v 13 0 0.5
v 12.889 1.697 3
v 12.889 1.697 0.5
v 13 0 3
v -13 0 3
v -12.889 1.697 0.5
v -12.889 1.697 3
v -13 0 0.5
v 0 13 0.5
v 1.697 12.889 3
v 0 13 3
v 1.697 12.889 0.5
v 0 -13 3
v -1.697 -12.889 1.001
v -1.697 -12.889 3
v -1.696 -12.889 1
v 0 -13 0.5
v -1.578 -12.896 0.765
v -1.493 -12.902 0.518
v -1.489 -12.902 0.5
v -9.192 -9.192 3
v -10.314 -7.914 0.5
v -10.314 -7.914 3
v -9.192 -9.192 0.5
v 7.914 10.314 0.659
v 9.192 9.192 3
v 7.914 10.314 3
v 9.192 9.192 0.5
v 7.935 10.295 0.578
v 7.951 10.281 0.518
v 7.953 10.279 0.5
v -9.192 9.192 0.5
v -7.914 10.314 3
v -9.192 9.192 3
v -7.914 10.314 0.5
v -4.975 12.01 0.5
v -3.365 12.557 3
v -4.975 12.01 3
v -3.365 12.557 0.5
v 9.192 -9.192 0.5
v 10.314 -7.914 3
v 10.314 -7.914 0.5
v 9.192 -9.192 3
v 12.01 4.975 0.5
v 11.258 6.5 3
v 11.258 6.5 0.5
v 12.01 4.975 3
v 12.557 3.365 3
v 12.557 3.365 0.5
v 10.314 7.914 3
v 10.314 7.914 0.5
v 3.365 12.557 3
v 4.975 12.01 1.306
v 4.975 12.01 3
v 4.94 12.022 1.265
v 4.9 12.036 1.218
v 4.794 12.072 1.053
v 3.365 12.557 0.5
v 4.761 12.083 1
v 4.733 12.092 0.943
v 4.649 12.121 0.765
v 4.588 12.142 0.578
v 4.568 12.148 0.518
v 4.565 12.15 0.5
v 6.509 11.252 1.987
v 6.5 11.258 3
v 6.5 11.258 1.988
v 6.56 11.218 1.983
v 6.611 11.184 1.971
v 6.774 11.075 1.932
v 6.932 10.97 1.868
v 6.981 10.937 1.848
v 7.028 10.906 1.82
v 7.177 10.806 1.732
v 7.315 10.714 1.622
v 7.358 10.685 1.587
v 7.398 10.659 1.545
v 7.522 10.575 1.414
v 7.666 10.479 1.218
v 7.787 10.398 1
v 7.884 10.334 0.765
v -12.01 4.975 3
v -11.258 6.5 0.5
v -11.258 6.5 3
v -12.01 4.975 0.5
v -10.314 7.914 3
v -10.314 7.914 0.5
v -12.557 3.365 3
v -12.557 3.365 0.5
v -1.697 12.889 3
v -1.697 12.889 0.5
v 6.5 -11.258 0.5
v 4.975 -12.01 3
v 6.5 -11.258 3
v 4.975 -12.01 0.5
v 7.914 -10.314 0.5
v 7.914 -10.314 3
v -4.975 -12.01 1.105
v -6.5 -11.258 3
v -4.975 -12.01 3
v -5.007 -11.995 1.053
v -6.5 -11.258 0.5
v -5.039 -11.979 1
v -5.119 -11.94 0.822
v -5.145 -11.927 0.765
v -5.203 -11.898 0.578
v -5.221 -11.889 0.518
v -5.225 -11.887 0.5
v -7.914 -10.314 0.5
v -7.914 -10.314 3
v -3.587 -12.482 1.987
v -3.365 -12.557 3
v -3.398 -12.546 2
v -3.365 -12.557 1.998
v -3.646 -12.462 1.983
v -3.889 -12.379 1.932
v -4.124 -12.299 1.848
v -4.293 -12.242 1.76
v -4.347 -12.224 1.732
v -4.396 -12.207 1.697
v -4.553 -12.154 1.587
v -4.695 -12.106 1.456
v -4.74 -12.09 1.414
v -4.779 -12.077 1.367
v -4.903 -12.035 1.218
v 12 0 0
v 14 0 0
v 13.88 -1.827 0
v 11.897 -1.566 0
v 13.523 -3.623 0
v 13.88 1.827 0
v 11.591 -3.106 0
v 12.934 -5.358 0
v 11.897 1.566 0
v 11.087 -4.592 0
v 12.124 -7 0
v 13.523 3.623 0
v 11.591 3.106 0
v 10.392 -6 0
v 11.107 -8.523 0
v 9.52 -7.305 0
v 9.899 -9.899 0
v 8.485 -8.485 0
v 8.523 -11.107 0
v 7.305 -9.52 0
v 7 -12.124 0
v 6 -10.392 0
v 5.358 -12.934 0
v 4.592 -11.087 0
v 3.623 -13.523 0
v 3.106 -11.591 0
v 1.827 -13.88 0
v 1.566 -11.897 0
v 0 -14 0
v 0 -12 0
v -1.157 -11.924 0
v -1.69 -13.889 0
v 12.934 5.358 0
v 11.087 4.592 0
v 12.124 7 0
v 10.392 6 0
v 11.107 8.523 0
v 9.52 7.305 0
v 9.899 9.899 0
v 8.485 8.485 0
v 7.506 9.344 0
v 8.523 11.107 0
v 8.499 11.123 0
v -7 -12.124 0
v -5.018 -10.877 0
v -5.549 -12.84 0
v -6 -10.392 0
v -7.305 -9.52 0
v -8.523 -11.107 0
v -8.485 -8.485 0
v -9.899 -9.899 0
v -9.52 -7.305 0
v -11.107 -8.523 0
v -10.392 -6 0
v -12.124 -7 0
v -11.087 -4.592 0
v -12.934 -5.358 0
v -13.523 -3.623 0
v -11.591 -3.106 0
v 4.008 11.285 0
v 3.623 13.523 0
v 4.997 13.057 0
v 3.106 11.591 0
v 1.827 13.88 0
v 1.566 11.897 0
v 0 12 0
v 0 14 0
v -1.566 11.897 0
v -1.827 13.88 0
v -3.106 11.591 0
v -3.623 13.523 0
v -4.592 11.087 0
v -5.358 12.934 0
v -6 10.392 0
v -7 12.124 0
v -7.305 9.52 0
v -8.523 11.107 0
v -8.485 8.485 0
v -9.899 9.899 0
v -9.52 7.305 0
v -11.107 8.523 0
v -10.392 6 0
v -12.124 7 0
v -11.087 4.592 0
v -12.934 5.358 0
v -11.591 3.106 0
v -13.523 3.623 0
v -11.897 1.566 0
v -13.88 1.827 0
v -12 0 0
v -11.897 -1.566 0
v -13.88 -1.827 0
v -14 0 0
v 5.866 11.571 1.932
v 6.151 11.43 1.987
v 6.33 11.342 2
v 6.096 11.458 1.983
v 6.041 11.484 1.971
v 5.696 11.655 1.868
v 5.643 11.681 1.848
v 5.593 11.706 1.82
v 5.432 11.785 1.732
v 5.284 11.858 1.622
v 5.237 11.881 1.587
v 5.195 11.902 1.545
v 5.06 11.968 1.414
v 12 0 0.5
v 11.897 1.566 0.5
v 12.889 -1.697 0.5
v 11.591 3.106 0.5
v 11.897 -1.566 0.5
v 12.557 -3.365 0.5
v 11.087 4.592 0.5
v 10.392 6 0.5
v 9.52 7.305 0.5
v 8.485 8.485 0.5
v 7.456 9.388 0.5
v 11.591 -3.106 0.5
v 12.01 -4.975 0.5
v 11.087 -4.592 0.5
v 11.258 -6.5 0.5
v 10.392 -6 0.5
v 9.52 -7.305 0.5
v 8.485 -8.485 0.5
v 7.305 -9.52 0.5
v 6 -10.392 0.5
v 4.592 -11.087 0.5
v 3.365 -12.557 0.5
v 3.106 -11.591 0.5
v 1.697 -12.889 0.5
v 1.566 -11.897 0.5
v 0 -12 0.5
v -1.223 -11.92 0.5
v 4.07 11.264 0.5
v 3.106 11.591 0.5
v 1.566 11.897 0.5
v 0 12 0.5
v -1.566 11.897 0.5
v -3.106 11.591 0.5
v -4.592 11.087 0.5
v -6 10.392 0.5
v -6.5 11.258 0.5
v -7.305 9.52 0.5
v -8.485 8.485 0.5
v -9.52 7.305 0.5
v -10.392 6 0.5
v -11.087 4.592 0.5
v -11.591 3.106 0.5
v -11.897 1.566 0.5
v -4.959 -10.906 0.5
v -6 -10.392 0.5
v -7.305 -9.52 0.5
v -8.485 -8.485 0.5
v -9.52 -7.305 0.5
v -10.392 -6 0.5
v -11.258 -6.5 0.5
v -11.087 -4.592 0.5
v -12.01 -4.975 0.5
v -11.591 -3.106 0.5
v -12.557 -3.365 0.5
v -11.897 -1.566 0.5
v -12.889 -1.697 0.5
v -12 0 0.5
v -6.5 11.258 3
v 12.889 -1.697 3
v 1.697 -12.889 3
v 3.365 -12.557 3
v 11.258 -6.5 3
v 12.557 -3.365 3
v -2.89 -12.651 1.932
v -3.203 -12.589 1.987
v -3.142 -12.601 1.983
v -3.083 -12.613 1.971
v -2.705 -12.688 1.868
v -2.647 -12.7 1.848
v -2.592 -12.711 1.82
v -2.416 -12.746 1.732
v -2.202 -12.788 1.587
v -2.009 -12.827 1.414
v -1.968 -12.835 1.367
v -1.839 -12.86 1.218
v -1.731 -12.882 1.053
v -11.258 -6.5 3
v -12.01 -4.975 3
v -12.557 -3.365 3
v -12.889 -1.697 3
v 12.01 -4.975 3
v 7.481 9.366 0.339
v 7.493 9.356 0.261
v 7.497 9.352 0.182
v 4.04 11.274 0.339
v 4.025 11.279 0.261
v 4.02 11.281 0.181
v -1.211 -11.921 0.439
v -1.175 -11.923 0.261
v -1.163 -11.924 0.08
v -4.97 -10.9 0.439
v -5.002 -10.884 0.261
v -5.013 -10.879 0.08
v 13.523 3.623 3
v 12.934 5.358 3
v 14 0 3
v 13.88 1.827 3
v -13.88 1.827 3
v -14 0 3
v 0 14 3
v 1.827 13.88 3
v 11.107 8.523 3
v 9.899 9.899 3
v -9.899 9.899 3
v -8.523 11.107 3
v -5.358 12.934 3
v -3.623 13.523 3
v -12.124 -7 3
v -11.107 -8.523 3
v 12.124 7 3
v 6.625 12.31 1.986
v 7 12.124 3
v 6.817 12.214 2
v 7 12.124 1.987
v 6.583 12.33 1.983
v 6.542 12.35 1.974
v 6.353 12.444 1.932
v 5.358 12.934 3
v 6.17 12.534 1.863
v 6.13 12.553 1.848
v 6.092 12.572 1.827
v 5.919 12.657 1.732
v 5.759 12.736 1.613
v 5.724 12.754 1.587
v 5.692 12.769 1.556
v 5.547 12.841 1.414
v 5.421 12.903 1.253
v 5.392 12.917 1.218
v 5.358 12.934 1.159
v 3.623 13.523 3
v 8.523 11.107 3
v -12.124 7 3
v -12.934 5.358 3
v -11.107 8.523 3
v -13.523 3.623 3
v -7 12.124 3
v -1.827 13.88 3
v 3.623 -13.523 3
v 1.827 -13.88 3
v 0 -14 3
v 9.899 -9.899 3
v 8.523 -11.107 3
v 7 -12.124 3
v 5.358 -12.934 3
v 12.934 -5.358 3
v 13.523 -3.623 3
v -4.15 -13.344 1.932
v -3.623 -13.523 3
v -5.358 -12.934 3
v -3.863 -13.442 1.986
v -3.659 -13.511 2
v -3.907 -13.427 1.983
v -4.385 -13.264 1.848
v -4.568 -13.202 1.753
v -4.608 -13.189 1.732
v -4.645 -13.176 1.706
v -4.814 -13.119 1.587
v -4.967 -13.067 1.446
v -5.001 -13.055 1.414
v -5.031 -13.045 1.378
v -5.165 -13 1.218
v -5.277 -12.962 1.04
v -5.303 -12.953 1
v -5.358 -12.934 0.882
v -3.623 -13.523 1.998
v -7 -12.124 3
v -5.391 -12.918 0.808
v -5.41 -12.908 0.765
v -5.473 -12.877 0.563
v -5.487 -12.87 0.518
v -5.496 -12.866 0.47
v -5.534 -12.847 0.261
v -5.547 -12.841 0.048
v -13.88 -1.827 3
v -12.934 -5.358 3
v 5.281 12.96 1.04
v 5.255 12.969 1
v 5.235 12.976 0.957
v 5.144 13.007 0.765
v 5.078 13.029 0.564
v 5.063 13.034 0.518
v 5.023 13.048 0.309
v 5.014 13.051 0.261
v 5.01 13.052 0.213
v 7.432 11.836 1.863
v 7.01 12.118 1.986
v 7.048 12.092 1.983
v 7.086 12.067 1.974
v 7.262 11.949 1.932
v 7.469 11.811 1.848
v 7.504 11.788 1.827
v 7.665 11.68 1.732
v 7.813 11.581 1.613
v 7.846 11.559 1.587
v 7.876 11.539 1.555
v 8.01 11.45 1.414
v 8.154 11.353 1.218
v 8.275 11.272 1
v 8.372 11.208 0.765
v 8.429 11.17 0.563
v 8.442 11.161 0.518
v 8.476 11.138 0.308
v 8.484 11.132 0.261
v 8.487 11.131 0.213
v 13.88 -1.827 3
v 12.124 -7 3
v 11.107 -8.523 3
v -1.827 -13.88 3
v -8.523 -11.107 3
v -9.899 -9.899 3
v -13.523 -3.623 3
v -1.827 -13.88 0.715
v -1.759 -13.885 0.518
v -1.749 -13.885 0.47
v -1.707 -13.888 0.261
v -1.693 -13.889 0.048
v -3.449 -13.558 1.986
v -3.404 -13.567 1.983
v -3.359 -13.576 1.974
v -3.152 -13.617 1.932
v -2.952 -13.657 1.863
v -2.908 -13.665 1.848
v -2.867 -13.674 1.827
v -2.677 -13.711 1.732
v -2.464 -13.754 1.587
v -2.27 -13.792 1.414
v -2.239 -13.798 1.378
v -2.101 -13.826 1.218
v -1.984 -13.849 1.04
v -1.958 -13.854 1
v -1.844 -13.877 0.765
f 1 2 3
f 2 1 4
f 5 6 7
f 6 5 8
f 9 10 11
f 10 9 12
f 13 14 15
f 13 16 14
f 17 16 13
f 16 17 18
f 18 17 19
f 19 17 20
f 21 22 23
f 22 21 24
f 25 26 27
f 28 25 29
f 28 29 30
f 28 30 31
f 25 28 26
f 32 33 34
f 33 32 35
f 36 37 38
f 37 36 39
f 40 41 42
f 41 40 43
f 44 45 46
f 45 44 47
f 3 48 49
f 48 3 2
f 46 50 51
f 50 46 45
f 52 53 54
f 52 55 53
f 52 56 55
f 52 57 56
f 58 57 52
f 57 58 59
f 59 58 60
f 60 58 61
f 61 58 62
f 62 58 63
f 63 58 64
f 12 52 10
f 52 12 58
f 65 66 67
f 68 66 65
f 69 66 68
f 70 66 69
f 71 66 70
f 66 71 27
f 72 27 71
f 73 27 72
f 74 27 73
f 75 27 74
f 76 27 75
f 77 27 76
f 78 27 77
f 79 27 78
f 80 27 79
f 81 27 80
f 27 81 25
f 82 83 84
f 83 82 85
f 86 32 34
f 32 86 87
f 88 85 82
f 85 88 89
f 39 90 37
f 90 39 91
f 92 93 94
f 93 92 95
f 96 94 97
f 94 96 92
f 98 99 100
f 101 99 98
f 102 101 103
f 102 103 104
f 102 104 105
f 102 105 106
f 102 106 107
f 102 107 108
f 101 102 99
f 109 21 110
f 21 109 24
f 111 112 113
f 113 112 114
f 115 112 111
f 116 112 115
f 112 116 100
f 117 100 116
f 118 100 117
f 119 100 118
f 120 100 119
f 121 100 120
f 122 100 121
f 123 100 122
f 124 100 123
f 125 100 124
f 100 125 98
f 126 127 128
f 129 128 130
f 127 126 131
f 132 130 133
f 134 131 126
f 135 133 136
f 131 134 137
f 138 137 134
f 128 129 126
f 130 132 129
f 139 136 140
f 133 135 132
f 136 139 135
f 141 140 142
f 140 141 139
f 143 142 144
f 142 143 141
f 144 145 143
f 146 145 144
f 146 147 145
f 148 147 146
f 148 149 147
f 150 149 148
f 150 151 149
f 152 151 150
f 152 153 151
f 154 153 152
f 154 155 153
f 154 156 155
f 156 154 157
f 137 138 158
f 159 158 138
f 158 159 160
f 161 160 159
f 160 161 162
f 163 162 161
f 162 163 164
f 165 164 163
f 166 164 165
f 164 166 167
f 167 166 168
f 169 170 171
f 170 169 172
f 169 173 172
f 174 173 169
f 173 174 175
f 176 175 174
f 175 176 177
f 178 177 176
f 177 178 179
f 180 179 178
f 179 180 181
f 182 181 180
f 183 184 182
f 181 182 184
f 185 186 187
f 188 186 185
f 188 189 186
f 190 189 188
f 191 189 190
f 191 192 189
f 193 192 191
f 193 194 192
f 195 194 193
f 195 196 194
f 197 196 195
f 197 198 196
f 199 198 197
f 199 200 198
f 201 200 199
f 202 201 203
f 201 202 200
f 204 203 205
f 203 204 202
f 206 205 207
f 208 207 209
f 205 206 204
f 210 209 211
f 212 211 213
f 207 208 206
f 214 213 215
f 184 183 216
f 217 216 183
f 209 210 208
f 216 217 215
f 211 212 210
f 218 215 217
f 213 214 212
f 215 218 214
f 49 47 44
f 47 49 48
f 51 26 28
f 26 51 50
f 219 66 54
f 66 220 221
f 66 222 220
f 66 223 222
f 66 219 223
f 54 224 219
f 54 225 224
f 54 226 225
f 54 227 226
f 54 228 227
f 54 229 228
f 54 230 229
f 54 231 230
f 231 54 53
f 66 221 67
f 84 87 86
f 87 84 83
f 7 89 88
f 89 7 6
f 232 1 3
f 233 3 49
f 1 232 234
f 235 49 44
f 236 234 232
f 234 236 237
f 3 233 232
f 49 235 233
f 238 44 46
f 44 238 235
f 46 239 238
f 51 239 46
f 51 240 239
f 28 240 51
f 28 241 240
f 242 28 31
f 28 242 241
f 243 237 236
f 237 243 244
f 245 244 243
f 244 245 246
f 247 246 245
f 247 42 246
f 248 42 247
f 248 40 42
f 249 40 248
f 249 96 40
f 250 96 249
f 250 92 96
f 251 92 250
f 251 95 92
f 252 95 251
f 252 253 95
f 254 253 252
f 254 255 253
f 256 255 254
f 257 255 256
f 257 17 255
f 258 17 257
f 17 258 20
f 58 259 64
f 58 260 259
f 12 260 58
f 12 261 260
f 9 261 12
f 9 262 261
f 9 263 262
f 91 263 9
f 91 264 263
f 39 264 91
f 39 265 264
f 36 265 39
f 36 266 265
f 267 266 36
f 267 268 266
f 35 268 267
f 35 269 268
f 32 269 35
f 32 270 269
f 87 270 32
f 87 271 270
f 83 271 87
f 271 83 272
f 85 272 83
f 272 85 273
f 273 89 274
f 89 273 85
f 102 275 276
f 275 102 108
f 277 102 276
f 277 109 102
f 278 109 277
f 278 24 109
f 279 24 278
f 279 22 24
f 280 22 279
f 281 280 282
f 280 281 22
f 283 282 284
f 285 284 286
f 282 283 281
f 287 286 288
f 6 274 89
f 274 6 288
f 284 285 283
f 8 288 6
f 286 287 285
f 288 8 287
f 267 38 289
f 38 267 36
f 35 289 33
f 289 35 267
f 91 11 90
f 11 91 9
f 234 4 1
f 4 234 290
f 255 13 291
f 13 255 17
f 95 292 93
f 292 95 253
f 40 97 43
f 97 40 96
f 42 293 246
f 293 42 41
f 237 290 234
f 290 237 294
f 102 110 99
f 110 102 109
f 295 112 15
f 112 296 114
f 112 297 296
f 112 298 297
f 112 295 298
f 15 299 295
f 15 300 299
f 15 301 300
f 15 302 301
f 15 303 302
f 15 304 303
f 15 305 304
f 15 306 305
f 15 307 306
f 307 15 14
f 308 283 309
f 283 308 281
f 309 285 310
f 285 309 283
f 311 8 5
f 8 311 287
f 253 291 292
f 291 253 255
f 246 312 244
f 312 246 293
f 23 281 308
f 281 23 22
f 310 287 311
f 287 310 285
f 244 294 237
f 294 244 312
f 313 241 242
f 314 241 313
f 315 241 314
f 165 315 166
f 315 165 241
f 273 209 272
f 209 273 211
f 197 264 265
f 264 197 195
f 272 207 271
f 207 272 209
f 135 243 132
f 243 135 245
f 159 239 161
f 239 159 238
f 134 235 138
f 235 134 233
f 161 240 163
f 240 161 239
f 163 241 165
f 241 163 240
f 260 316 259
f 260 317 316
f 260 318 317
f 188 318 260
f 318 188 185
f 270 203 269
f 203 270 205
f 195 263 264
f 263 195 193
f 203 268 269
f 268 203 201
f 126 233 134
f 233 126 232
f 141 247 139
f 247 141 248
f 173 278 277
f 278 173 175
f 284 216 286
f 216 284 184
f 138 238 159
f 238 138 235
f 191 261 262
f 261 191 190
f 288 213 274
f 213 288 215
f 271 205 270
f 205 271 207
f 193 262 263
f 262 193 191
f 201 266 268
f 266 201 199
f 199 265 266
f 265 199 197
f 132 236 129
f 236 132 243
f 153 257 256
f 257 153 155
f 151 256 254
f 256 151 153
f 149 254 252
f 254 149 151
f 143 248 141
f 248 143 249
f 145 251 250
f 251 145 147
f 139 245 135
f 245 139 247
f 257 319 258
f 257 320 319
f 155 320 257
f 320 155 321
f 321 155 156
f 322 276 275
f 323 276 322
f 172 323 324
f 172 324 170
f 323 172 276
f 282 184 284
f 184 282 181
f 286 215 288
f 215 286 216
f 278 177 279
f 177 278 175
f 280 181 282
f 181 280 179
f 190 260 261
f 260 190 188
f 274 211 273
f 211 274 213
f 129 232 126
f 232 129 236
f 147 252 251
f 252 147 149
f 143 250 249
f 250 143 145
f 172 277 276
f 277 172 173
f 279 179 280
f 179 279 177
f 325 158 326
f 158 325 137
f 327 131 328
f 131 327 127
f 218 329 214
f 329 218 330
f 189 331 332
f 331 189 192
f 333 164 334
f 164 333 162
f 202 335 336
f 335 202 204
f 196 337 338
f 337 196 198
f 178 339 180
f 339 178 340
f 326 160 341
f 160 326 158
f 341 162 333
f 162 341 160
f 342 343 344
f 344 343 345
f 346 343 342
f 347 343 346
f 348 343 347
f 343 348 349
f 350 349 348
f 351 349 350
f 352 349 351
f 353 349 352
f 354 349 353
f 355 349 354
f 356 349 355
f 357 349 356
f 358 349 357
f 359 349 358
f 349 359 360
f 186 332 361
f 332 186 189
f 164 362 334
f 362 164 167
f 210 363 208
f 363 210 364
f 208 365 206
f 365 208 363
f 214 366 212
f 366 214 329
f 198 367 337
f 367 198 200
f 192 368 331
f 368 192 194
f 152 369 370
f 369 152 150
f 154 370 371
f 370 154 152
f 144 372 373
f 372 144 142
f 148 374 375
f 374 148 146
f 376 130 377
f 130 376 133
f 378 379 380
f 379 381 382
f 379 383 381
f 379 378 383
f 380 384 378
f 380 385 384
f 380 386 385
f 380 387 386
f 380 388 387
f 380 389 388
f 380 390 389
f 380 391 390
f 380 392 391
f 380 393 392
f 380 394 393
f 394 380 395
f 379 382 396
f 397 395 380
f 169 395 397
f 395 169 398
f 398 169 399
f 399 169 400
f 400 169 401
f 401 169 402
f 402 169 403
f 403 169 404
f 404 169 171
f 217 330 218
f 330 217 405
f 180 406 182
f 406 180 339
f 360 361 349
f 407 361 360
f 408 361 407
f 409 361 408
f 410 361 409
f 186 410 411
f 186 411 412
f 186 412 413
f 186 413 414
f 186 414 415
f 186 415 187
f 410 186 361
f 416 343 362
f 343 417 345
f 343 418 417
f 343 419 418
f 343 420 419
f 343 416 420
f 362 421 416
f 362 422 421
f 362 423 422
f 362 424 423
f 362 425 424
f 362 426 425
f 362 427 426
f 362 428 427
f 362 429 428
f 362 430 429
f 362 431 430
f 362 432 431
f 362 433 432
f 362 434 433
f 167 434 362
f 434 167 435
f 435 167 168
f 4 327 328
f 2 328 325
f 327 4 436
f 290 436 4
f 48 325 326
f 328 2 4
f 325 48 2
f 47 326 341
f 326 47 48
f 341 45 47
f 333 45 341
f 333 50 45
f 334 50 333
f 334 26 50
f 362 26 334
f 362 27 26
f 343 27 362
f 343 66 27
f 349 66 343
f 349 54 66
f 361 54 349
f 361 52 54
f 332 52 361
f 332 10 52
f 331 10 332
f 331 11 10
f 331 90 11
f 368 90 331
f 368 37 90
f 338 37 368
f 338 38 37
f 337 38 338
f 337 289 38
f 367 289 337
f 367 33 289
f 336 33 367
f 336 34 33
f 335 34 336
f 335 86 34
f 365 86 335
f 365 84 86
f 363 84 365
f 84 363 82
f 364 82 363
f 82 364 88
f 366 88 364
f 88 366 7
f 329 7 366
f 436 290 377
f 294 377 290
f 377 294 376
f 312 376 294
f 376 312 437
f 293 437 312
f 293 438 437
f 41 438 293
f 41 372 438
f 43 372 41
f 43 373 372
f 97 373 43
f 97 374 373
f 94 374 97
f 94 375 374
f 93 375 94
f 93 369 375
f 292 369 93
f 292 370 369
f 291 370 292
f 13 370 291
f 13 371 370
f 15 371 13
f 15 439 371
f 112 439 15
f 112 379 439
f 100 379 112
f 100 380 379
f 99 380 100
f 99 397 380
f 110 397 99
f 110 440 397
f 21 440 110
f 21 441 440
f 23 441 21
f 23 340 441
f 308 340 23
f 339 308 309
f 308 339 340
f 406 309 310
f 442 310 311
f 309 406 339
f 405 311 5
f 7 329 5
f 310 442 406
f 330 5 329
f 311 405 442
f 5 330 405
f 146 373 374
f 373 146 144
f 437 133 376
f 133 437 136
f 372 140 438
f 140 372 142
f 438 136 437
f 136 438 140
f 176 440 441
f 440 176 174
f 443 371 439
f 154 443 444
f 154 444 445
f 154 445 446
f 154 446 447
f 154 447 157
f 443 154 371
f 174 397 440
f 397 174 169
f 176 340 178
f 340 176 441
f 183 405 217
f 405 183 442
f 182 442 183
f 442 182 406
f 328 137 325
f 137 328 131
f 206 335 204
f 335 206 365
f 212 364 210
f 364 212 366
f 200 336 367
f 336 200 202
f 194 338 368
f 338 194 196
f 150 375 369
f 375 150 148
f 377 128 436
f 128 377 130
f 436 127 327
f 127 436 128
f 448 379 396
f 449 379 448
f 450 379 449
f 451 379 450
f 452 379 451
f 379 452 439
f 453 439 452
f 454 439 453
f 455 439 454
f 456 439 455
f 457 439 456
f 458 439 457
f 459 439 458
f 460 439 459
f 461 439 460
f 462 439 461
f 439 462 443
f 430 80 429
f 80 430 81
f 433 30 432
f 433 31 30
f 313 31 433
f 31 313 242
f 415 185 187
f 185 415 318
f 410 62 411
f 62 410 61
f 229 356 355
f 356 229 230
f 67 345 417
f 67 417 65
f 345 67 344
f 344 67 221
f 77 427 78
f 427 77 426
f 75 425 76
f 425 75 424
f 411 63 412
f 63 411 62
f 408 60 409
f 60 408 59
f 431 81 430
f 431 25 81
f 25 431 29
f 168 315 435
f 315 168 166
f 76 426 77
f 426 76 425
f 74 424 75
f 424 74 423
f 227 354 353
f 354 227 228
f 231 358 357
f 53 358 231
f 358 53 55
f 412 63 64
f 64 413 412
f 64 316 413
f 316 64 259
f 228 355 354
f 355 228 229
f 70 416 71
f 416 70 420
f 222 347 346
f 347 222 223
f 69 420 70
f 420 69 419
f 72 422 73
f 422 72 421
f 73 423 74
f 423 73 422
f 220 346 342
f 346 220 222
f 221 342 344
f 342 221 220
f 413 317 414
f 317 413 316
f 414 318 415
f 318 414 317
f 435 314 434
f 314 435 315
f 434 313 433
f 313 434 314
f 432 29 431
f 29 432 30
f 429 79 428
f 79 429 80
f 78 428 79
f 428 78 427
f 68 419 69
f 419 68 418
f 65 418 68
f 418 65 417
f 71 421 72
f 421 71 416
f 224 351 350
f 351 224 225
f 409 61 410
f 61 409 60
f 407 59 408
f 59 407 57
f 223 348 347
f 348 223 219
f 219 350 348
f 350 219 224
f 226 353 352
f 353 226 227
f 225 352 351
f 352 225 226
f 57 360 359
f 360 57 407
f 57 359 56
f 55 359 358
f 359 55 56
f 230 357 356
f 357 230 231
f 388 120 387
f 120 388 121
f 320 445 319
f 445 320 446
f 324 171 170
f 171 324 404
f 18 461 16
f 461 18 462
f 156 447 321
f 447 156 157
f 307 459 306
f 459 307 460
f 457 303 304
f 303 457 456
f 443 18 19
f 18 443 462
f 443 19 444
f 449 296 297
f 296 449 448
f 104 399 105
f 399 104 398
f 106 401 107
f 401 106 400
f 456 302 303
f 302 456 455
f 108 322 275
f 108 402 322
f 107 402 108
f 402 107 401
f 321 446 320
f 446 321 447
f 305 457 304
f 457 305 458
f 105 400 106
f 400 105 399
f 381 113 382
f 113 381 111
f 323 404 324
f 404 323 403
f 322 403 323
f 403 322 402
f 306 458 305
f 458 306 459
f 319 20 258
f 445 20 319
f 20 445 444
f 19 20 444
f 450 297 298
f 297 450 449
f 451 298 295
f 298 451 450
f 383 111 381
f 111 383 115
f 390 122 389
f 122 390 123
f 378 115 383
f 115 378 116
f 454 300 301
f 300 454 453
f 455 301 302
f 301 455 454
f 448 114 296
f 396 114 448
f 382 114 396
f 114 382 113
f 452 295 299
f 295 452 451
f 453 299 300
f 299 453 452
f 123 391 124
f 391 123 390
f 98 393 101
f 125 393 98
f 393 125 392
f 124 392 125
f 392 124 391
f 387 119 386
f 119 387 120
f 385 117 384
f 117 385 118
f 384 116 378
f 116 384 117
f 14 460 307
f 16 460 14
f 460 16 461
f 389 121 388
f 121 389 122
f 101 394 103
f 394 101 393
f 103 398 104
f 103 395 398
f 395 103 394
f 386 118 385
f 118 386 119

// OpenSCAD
// file: ../build_environments.scad
// build_environments.scad: modules to build level sections
//

module pool(diameter=10.0, wall_height=2.0, step_width=3.0, connections=[])
{
    difference() {
        union() {
        difference() {
            cylinder(h=0.5,r1=diameter+step_width,r2=diameter+step_width,$fn=48);
            translate([0,0,-0.1])
                cylinder(h=0.7,r1=diameter,r2=diameter,$fn=48);
        }
        difference() {
            cylinder(h=wall_height,r1=diameter+step_width+1.0,r2=diameter+step_width+1.0,$fn=48);
            translate([0,0,-0.1])
                cylinder(h=wall_height+0.2,r1=diameter+step_width,r2=diameter+step_width,$fn=48);
        }
        }
    
        for (c = connections)
        {
            rotate([0,90,0]) {
                angle = atan2(c[1],c[0]);
                rotate([-angle,0,0]) {
                    cylinder(h=diameter+5.0,r1=c[2],r2=c[2],$fn=48);
                }
            }
        }
    }
}

module straight(length=10.0, width=2.0, dy1=0.0, dy2=0.0, dz=0.0)
{
    dims = [0, 0, 0, 0, 0, (dz/length)];
    matrix = [
        [ 1, dims[0], dims[1], 0 ],
        [ dims[2], 1, dims[4], 0 ],
        [ dims[5], dims[3], 1, 0 ],
        [ 0, 0, 0, 1 ]
    ];
    multmatrix(matrix)
    difference() {
        translate([dy1,0,0])
        union() {
            rotate([0,90,0]) {
                difference() {
                    cylinder(h=(length-dy1-dy2),r1=width+1.0,r2=width+1.0,$fn=24);
                    translate([0,0,-0.1])
                        cylinder(h=(length-dy1-dy2+0.2),r1=width,r2=width,$fn=24);
                }
                difference() {
                    cylinder(h=1.0,r1=width+2.0,r2=width+2.0,$fn=24);
                    translate([0,0,-0.1])
                        cylinder(h=1.2,r1=width,r2=width,$fn=24);
                }
                translate([0,0,(length-dy1-dy2)-1.0]) {
                    difference() {
                        cylinder(h=1.0,r1=width+2.0,r2=width+2.0,$fn=24);
                        translate([0,0,-0.1])
                            cylinder(h=1.2,r1=width,r2=width,$fn=24);
                    }
                }
            }
        }
        translate([0,0,-(2*width+4.0)/2])
            cube([3*length,3*length,2*width+4.0],center=true);
    }
}

module curve(p0=[0,0], center=[0,0], dir=1, angle=0.0, width=2.0)
{
    radius = sqrt((p0[0]-center[0])*(p0[0]-center[0]) + (p0[1]-center[1])*(p0[1]-center[1]));
    if (dir == 0) {
        difference() {
            rotate([0,0,-90])
            difference() {
                rotate_extrude(angle = angle, convexity = 10, $fn=32)
                    translate([radius, 0, 0])
                        circle(r = width+1.0,$fn=24);
                rotate([0,0,-1.0])
                    rotate_extrude(angle = angle+2.0, convexity = 10, $fn=32)
                        translate([radius, 0, 0])
                            circle(r = width,$fn=24);
            }
            translate([0,0,-(2*width+4.0)/2])
                cube([5*radius,5*radius,2*width+4.0],center=true);
        }
    }
    else {
        difference() {
            rotate([0,0,90])
            difference() {
                rotate_extrude(angle = -angle, convexity = 10, $fn=32)
                    translate([radius, 0, 0])
                        circle(r = width+1.0,$fn=24);
                rotate([0,0,1.0])
                    rotate_extrude(angle = -angle-2.0, convexity = 10, $fn=32)
                        translate([radius, 0, 0])
                            circle(r = width,$fn=24);
            }
            translate([0,0,-(2*width+4.0)/2])
                cube([5*radius,5*radius,2*width+4.0],center=true);
        }
    }

}

// test pool
//pool(diameter=12.0000, wall_height=3.0000, step_width=3.0000, connections=[[0.0000,-26.0000,2.0000], [23.6074,0.0000,2.0000]]);

// test straight, slope
//straight(length=26.0000, width=2.0000, dy1=11.8322, dy2=6.7082, dz=0.0000);
//straight(length=29.1549, width=12.0000, dy1=0.0000, dy2=0.0000, dz=-15.0000);

// test curve
//curve(p0=[23.6074, 0.0000], center=[23.6074, 5.0000], dir=0, angle=60.1011, width=2.0000);
//curve(p0=[33.6426, 12.4219], center=[37.9771, 9.9295], dir=1, angle=120.4627, width=2.0000);
// main file
use <../build_environments.scad>;
pool(diameter=12.0000, wall_height=3.0000, step_width=1.0000, connections=[[10.9584,19.6337,2.0000], [-4.2400,-15.6553,2.0000]]);
